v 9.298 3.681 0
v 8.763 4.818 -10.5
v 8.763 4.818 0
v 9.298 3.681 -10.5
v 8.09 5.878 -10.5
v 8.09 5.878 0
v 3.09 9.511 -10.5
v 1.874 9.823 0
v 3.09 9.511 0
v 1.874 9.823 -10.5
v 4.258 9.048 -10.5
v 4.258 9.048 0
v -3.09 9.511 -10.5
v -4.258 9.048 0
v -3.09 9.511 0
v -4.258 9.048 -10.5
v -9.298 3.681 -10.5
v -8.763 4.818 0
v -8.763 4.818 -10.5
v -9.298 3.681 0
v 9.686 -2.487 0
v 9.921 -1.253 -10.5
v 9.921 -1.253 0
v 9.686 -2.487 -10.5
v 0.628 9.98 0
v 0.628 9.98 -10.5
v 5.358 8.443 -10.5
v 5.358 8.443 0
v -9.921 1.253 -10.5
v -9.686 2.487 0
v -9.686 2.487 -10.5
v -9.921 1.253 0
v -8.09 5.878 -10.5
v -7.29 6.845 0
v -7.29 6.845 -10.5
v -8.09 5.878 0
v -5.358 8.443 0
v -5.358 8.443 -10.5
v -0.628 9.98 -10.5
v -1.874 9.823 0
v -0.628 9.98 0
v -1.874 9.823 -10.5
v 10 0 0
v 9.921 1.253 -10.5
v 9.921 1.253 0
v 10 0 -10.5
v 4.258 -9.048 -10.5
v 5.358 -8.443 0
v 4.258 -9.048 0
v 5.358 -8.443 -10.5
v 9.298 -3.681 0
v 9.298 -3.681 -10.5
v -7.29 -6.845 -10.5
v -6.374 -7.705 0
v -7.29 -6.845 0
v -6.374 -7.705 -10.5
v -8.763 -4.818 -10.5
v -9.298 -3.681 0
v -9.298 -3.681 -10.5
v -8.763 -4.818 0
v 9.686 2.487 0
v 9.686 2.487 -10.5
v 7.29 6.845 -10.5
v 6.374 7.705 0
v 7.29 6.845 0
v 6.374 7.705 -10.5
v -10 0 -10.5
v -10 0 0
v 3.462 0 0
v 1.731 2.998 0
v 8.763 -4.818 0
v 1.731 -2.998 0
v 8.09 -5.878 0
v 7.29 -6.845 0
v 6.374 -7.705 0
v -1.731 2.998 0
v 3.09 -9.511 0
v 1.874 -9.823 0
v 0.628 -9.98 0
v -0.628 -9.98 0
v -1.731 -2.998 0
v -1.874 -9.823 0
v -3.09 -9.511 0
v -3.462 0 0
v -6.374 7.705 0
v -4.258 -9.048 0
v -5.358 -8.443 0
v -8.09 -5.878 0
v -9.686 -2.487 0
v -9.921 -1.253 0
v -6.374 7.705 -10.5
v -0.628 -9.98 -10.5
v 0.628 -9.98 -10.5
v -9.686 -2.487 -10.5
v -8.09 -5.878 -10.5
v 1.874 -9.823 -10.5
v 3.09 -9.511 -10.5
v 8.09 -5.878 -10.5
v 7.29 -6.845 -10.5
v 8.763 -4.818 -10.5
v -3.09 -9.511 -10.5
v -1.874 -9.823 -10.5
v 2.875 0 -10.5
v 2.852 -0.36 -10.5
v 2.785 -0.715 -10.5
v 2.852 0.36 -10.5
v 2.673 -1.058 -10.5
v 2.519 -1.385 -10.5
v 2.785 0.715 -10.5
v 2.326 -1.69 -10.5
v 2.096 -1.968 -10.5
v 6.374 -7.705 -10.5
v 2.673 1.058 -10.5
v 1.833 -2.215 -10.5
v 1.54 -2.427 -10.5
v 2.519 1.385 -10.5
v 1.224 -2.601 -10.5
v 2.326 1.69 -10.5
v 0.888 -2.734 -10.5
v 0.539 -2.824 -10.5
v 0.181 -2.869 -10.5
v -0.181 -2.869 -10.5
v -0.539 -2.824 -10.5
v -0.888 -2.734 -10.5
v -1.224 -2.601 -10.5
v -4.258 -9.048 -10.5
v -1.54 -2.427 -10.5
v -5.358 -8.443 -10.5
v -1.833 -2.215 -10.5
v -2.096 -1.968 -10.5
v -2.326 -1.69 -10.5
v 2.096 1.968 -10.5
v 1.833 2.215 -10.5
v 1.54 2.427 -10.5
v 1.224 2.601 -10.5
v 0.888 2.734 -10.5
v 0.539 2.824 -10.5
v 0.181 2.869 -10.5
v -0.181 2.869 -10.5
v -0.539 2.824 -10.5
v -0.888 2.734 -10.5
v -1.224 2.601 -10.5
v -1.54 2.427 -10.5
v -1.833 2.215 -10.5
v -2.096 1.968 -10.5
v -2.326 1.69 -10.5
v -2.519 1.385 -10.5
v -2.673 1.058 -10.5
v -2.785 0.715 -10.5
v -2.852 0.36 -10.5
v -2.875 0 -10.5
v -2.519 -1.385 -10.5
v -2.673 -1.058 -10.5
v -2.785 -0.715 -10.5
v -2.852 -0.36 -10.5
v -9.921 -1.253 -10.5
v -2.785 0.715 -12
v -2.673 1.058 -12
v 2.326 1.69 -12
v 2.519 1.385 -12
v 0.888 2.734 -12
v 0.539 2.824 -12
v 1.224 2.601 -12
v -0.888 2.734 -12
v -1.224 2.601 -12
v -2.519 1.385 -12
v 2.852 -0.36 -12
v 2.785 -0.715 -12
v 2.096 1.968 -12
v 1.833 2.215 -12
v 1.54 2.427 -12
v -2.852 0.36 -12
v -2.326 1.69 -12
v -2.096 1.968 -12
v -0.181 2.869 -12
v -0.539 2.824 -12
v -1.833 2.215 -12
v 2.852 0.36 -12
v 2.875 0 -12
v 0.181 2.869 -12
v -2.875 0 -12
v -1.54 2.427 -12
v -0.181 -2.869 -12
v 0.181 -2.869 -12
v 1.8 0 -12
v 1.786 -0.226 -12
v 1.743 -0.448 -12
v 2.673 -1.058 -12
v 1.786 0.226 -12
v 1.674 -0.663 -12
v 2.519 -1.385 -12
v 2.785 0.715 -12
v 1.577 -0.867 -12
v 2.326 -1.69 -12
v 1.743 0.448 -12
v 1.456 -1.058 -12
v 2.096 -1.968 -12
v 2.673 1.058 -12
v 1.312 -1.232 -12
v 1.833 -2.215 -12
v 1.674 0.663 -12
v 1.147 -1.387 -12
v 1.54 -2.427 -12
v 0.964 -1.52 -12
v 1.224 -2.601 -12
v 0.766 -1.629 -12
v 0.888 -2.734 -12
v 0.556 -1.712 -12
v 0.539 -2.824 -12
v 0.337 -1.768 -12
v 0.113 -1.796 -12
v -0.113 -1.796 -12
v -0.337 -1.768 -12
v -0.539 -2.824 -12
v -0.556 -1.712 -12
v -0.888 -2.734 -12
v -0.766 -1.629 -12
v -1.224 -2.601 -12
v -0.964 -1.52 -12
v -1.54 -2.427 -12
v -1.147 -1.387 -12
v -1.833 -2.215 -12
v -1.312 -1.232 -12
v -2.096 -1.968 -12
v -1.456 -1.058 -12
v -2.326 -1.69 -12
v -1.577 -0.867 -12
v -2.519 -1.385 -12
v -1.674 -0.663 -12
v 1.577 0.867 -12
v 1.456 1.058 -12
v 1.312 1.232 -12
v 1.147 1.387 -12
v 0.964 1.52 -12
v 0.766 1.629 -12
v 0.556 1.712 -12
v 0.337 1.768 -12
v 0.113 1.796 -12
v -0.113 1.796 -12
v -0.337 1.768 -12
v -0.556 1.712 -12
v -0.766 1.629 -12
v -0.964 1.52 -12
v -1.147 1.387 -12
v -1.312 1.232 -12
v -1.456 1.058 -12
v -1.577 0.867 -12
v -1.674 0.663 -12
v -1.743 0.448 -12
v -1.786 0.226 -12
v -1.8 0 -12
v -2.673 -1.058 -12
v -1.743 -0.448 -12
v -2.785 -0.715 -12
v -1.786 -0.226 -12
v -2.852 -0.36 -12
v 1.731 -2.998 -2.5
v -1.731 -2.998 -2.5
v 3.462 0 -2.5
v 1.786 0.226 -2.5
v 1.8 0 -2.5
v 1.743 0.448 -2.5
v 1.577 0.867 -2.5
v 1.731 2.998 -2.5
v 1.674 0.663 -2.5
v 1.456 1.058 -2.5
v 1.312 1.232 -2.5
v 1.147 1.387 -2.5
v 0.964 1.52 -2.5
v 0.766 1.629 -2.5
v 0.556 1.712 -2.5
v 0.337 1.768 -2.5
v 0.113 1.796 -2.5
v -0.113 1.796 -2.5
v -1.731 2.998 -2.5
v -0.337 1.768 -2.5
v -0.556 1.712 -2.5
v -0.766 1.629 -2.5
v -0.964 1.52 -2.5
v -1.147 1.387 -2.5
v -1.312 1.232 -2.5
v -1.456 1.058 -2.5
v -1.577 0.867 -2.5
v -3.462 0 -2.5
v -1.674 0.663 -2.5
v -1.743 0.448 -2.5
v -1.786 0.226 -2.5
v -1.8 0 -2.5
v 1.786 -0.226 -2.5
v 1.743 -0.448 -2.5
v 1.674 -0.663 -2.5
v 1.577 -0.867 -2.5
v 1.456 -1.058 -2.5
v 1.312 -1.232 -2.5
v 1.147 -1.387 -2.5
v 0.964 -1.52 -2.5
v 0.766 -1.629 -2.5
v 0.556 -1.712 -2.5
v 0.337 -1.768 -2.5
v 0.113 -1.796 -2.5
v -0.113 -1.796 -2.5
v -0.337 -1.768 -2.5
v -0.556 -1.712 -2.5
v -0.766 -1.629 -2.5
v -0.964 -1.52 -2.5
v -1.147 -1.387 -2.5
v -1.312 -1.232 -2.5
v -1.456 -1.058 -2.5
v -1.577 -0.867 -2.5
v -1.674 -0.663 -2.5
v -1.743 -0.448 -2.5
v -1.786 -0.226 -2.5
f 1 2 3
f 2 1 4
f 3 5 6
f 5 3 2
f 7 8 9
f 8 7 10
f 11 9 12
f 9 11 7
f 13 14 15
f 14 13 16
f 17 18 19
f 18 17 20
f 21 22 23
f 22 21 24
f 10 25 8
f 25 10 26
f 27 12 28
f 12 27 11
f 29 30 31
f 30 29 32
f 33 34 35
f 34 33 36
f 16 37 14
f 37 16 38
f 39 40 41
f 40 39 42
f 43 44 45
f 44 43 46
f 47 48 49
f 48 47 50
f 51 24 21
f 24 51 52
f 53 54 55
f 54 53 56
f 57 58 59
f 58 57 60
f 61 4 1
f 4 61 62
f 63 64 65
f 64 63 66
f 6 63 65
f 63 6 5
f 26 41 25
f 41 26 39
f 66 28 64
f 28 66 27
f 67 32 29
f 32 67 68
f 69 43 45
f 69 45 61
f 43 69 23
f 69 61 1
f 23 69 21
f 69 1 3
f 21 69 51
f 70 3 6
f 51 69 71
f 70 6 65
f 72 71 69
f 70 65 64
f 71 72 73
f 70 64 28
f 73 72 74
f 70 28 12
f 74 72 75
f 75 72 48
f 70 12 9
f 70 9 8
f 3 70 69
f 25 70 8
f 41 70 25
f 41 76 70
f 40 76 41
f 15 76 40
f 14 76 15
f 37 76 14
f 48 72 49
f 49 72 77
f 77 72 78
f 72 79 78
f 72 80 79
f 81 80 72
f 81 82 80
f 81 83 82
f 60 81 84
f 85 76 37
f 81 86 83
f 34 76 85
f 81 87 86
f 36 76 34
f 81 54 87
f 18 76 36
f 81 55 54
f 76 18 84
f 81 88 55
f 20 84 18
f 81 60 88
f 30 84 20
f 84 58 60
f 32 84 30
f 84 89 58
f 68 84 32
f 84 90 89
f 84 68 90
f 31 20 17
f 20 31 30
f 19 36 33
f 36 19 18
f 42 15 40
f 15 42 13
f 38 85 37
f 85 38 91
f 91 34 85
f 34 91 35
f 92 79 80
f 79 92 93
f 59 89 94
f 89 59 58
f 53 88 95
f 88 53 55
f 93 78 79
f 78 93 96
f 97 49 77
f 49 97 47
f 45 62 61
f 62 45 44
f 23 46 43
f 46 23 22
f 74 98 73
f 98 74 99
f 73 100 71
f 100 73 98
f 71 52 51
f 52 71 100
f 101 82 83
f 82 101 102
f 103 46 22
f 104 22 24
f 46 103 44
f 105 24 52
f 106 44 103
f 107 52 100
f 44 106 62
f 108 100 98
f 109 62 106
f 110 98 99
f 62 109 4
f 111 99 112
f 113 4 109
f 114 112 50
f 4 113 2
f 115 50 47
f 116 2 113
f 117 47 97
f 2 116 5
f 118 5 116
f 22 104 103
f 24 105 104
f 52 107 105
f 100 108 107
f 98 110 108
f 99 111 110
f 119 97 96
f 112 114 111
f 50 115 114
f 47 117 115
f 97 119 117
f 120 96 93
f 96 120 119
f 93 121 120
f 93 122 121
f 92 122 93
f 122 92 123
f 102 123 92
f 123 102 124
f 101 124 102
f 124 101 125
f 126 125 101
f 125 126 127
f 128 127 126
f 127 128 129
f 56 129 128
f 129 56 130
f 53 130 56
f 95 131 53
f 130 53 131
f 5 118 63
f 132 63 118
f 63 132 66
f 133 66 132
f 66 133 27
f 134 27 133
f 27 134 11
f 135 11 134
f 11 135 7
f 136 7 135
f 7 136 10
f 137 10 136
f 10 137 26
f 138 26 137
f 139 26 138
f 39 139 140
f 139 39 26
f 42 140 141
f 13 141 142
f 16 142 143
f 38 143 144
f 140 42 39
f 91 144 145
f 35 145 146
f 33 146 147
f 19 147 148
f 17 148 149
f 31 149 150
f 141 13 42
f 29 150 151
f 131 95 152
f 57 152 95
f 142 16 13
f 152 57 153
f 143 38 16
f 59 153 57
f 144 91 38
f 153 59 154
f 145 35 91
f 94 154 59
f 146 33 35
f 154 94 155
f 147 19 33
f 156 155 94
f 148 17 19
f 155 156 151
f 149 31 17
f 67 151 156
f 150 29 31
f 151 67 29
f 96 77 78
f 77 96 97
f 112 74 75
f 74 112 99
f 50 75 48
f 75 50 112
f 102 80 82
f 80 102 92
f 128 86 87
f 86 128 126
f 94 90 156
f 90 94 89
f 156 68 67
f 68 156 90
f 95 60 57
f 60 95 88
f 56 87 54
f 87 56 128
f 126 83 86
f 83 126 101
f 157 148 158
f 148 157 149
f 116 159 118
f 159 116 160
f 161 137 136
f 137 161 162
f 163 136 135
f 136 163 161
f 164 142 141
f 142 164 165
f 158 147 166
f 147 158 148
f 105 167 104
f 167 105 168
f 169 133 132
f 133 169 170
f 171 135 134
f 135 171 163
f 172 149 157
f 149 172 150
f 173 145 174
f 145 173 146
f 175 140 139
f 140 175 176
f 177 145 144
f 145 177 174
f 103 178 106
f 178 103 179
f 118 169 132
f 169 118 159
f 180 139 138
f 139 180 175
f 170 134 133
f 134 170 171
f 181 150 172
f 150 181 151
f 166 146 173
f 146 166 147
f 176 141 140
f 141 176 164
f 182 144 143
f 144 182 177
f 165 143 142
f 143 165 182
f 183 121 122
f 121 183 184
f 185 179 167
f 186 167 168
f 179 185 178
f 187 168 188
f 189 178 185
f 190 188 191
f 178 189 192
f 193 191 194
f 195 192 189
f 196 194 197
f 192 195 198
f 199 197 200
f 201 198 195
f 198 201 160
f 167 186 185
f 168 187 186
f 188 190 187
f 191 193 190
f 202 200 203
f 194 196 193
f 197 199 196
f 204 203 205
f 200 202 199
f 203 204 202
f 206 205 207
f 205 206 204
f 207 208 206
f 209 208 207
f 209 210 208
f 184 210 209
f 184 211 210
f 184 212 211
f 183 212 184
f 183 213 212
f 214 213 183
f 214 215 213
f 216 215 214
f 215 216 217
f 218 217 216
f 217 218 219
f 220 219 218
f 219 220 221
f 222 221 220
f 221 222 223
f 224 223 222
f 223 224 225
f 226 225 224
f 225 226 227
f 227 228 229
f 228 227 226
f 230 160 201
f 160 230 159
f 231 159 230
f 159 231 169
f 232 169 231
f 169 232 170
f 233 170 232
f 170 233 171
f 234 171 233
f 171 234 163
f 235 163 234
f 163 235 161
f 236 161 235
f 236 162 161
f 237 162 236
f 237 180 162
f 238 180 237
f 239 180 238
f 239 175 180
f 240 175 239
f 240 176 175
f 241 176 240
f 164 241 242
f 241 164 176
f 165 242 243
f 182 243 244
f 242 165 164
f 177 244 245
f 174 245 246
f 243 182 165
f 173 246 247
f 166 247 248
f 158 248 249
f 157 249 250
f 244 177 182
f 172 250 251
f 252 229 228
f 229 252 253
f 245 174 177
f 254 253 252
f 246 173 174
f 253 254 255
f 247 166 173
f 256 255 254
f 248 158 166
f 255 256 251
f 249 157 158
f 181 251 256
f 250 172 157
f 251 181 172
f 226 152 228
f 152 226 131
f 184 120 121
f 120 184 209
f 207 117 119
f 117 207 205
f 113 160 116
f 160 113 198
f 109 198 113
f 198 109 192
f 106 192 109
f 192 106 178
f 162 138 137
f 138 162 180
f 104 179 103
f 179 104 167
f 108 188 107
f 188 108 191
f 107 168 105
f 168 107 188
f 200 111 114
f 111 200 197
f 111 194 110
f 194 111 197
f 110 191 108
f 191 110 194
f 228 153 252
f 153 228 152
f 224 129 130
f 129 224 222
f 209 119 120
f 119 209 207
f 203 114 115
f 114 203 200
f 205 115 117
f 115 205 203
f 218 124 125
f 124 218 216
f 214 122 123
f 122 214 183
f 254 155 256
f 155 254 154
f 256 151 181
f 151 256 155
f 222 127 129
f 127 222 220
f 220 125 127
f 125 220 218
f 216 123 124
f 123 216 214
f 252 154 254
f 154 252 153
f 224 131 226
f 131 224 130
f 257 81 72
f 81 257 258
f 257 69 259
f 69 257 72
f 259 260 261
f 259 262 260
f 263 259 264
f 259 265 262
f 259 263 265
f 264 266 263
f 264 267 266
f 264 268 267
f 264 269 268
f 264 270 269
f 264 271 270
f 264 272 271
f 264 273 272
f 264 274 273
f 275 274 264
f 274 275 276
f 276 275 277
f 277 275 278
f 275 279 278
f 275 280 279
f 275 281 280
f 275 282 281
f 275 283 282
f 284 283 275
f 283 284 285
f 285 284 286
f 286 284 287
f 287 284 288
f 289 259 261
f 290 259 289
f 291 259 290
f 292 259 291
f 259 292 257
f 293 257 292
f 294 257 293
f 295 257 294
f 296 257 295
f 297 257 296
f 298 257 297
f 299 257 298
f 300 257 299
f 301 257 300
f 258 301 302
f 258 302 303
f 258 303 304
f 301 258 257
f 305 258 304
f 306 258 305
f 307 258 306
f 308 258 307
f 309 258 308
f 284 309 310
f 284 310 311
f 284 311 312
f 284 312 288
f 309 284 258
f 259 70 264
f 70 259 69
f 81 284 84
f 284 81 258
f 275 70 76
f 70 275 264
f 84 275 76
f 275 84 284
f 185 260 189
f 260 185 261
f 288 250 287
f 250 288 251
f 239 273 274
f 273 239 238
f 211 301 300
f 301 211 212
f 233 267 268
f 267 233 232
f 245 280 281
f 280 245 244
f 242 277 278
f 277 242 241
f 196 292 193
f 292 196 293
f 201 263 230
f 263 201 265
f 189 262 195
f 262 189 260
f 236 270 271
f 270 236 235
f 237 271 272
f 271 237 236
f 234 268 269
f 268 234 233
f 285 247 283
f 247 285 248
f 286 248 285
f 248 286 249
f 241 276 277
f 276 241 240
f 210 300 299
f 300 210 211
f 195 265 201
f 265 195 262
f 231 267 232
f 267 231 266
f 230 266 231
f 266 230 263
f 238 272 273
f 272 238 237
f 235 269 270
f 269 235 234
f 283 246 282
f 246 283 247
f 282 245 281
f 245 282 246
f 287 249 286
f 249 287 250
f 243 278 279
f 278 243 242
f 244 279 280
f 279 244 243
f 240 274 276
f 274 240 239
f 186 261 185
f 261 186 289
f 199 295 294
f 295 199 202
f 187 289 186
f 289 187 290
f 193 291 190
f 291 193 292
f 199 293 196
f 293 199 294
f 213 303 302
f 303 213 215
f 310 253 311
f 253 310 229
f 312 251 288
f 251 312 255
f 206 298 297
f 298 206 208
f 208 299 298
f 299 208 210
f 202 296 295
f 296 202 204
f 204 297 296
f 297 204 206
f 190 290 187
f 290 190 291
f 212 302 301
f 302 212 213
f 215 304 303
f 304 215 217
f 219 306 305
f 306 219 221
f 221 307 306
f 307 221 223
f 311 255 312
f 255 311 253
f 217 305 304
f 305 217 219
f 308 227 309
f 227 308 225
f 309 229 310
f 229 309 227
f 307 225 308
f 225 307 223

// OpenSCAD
$fn = 50;

difference() {
	union() {
		translate(v = [0, 0, -10.5]) {
			cylinder(h = 10.5, r = 10.0);
		}
		#translate(v = [0, 0, -12.0]) {
			cylinder(h = 12, r = 2.875);
		}
	}
	union() {
		translate(v = [0, 0, 0]) {
			rotate(a = [0, 0, 0]) {
				difference() {
					union() {
						translate(v = [0, 0, -2.5]) {
							linear_extrude(height = 2.5) {
								polygon(points = [[3.4619999999999997, 0.0], [1.7310000000000003, 2.9981799479017264], [-1.7309999999999992, 2.9981799479017264], [-3.4619999999999997, 4.2397272186481365e-16], [-1.7310000000000014, -2.998179947901726], [1.7309999999999977, -2.9981799479017277]]);
							}
						}
					}
					union();
				}
			}
		}
		#translate(v = [0, 0, -100.0]) {
			cylinder(h = 200, r = 1.8);
		}
	}
}
